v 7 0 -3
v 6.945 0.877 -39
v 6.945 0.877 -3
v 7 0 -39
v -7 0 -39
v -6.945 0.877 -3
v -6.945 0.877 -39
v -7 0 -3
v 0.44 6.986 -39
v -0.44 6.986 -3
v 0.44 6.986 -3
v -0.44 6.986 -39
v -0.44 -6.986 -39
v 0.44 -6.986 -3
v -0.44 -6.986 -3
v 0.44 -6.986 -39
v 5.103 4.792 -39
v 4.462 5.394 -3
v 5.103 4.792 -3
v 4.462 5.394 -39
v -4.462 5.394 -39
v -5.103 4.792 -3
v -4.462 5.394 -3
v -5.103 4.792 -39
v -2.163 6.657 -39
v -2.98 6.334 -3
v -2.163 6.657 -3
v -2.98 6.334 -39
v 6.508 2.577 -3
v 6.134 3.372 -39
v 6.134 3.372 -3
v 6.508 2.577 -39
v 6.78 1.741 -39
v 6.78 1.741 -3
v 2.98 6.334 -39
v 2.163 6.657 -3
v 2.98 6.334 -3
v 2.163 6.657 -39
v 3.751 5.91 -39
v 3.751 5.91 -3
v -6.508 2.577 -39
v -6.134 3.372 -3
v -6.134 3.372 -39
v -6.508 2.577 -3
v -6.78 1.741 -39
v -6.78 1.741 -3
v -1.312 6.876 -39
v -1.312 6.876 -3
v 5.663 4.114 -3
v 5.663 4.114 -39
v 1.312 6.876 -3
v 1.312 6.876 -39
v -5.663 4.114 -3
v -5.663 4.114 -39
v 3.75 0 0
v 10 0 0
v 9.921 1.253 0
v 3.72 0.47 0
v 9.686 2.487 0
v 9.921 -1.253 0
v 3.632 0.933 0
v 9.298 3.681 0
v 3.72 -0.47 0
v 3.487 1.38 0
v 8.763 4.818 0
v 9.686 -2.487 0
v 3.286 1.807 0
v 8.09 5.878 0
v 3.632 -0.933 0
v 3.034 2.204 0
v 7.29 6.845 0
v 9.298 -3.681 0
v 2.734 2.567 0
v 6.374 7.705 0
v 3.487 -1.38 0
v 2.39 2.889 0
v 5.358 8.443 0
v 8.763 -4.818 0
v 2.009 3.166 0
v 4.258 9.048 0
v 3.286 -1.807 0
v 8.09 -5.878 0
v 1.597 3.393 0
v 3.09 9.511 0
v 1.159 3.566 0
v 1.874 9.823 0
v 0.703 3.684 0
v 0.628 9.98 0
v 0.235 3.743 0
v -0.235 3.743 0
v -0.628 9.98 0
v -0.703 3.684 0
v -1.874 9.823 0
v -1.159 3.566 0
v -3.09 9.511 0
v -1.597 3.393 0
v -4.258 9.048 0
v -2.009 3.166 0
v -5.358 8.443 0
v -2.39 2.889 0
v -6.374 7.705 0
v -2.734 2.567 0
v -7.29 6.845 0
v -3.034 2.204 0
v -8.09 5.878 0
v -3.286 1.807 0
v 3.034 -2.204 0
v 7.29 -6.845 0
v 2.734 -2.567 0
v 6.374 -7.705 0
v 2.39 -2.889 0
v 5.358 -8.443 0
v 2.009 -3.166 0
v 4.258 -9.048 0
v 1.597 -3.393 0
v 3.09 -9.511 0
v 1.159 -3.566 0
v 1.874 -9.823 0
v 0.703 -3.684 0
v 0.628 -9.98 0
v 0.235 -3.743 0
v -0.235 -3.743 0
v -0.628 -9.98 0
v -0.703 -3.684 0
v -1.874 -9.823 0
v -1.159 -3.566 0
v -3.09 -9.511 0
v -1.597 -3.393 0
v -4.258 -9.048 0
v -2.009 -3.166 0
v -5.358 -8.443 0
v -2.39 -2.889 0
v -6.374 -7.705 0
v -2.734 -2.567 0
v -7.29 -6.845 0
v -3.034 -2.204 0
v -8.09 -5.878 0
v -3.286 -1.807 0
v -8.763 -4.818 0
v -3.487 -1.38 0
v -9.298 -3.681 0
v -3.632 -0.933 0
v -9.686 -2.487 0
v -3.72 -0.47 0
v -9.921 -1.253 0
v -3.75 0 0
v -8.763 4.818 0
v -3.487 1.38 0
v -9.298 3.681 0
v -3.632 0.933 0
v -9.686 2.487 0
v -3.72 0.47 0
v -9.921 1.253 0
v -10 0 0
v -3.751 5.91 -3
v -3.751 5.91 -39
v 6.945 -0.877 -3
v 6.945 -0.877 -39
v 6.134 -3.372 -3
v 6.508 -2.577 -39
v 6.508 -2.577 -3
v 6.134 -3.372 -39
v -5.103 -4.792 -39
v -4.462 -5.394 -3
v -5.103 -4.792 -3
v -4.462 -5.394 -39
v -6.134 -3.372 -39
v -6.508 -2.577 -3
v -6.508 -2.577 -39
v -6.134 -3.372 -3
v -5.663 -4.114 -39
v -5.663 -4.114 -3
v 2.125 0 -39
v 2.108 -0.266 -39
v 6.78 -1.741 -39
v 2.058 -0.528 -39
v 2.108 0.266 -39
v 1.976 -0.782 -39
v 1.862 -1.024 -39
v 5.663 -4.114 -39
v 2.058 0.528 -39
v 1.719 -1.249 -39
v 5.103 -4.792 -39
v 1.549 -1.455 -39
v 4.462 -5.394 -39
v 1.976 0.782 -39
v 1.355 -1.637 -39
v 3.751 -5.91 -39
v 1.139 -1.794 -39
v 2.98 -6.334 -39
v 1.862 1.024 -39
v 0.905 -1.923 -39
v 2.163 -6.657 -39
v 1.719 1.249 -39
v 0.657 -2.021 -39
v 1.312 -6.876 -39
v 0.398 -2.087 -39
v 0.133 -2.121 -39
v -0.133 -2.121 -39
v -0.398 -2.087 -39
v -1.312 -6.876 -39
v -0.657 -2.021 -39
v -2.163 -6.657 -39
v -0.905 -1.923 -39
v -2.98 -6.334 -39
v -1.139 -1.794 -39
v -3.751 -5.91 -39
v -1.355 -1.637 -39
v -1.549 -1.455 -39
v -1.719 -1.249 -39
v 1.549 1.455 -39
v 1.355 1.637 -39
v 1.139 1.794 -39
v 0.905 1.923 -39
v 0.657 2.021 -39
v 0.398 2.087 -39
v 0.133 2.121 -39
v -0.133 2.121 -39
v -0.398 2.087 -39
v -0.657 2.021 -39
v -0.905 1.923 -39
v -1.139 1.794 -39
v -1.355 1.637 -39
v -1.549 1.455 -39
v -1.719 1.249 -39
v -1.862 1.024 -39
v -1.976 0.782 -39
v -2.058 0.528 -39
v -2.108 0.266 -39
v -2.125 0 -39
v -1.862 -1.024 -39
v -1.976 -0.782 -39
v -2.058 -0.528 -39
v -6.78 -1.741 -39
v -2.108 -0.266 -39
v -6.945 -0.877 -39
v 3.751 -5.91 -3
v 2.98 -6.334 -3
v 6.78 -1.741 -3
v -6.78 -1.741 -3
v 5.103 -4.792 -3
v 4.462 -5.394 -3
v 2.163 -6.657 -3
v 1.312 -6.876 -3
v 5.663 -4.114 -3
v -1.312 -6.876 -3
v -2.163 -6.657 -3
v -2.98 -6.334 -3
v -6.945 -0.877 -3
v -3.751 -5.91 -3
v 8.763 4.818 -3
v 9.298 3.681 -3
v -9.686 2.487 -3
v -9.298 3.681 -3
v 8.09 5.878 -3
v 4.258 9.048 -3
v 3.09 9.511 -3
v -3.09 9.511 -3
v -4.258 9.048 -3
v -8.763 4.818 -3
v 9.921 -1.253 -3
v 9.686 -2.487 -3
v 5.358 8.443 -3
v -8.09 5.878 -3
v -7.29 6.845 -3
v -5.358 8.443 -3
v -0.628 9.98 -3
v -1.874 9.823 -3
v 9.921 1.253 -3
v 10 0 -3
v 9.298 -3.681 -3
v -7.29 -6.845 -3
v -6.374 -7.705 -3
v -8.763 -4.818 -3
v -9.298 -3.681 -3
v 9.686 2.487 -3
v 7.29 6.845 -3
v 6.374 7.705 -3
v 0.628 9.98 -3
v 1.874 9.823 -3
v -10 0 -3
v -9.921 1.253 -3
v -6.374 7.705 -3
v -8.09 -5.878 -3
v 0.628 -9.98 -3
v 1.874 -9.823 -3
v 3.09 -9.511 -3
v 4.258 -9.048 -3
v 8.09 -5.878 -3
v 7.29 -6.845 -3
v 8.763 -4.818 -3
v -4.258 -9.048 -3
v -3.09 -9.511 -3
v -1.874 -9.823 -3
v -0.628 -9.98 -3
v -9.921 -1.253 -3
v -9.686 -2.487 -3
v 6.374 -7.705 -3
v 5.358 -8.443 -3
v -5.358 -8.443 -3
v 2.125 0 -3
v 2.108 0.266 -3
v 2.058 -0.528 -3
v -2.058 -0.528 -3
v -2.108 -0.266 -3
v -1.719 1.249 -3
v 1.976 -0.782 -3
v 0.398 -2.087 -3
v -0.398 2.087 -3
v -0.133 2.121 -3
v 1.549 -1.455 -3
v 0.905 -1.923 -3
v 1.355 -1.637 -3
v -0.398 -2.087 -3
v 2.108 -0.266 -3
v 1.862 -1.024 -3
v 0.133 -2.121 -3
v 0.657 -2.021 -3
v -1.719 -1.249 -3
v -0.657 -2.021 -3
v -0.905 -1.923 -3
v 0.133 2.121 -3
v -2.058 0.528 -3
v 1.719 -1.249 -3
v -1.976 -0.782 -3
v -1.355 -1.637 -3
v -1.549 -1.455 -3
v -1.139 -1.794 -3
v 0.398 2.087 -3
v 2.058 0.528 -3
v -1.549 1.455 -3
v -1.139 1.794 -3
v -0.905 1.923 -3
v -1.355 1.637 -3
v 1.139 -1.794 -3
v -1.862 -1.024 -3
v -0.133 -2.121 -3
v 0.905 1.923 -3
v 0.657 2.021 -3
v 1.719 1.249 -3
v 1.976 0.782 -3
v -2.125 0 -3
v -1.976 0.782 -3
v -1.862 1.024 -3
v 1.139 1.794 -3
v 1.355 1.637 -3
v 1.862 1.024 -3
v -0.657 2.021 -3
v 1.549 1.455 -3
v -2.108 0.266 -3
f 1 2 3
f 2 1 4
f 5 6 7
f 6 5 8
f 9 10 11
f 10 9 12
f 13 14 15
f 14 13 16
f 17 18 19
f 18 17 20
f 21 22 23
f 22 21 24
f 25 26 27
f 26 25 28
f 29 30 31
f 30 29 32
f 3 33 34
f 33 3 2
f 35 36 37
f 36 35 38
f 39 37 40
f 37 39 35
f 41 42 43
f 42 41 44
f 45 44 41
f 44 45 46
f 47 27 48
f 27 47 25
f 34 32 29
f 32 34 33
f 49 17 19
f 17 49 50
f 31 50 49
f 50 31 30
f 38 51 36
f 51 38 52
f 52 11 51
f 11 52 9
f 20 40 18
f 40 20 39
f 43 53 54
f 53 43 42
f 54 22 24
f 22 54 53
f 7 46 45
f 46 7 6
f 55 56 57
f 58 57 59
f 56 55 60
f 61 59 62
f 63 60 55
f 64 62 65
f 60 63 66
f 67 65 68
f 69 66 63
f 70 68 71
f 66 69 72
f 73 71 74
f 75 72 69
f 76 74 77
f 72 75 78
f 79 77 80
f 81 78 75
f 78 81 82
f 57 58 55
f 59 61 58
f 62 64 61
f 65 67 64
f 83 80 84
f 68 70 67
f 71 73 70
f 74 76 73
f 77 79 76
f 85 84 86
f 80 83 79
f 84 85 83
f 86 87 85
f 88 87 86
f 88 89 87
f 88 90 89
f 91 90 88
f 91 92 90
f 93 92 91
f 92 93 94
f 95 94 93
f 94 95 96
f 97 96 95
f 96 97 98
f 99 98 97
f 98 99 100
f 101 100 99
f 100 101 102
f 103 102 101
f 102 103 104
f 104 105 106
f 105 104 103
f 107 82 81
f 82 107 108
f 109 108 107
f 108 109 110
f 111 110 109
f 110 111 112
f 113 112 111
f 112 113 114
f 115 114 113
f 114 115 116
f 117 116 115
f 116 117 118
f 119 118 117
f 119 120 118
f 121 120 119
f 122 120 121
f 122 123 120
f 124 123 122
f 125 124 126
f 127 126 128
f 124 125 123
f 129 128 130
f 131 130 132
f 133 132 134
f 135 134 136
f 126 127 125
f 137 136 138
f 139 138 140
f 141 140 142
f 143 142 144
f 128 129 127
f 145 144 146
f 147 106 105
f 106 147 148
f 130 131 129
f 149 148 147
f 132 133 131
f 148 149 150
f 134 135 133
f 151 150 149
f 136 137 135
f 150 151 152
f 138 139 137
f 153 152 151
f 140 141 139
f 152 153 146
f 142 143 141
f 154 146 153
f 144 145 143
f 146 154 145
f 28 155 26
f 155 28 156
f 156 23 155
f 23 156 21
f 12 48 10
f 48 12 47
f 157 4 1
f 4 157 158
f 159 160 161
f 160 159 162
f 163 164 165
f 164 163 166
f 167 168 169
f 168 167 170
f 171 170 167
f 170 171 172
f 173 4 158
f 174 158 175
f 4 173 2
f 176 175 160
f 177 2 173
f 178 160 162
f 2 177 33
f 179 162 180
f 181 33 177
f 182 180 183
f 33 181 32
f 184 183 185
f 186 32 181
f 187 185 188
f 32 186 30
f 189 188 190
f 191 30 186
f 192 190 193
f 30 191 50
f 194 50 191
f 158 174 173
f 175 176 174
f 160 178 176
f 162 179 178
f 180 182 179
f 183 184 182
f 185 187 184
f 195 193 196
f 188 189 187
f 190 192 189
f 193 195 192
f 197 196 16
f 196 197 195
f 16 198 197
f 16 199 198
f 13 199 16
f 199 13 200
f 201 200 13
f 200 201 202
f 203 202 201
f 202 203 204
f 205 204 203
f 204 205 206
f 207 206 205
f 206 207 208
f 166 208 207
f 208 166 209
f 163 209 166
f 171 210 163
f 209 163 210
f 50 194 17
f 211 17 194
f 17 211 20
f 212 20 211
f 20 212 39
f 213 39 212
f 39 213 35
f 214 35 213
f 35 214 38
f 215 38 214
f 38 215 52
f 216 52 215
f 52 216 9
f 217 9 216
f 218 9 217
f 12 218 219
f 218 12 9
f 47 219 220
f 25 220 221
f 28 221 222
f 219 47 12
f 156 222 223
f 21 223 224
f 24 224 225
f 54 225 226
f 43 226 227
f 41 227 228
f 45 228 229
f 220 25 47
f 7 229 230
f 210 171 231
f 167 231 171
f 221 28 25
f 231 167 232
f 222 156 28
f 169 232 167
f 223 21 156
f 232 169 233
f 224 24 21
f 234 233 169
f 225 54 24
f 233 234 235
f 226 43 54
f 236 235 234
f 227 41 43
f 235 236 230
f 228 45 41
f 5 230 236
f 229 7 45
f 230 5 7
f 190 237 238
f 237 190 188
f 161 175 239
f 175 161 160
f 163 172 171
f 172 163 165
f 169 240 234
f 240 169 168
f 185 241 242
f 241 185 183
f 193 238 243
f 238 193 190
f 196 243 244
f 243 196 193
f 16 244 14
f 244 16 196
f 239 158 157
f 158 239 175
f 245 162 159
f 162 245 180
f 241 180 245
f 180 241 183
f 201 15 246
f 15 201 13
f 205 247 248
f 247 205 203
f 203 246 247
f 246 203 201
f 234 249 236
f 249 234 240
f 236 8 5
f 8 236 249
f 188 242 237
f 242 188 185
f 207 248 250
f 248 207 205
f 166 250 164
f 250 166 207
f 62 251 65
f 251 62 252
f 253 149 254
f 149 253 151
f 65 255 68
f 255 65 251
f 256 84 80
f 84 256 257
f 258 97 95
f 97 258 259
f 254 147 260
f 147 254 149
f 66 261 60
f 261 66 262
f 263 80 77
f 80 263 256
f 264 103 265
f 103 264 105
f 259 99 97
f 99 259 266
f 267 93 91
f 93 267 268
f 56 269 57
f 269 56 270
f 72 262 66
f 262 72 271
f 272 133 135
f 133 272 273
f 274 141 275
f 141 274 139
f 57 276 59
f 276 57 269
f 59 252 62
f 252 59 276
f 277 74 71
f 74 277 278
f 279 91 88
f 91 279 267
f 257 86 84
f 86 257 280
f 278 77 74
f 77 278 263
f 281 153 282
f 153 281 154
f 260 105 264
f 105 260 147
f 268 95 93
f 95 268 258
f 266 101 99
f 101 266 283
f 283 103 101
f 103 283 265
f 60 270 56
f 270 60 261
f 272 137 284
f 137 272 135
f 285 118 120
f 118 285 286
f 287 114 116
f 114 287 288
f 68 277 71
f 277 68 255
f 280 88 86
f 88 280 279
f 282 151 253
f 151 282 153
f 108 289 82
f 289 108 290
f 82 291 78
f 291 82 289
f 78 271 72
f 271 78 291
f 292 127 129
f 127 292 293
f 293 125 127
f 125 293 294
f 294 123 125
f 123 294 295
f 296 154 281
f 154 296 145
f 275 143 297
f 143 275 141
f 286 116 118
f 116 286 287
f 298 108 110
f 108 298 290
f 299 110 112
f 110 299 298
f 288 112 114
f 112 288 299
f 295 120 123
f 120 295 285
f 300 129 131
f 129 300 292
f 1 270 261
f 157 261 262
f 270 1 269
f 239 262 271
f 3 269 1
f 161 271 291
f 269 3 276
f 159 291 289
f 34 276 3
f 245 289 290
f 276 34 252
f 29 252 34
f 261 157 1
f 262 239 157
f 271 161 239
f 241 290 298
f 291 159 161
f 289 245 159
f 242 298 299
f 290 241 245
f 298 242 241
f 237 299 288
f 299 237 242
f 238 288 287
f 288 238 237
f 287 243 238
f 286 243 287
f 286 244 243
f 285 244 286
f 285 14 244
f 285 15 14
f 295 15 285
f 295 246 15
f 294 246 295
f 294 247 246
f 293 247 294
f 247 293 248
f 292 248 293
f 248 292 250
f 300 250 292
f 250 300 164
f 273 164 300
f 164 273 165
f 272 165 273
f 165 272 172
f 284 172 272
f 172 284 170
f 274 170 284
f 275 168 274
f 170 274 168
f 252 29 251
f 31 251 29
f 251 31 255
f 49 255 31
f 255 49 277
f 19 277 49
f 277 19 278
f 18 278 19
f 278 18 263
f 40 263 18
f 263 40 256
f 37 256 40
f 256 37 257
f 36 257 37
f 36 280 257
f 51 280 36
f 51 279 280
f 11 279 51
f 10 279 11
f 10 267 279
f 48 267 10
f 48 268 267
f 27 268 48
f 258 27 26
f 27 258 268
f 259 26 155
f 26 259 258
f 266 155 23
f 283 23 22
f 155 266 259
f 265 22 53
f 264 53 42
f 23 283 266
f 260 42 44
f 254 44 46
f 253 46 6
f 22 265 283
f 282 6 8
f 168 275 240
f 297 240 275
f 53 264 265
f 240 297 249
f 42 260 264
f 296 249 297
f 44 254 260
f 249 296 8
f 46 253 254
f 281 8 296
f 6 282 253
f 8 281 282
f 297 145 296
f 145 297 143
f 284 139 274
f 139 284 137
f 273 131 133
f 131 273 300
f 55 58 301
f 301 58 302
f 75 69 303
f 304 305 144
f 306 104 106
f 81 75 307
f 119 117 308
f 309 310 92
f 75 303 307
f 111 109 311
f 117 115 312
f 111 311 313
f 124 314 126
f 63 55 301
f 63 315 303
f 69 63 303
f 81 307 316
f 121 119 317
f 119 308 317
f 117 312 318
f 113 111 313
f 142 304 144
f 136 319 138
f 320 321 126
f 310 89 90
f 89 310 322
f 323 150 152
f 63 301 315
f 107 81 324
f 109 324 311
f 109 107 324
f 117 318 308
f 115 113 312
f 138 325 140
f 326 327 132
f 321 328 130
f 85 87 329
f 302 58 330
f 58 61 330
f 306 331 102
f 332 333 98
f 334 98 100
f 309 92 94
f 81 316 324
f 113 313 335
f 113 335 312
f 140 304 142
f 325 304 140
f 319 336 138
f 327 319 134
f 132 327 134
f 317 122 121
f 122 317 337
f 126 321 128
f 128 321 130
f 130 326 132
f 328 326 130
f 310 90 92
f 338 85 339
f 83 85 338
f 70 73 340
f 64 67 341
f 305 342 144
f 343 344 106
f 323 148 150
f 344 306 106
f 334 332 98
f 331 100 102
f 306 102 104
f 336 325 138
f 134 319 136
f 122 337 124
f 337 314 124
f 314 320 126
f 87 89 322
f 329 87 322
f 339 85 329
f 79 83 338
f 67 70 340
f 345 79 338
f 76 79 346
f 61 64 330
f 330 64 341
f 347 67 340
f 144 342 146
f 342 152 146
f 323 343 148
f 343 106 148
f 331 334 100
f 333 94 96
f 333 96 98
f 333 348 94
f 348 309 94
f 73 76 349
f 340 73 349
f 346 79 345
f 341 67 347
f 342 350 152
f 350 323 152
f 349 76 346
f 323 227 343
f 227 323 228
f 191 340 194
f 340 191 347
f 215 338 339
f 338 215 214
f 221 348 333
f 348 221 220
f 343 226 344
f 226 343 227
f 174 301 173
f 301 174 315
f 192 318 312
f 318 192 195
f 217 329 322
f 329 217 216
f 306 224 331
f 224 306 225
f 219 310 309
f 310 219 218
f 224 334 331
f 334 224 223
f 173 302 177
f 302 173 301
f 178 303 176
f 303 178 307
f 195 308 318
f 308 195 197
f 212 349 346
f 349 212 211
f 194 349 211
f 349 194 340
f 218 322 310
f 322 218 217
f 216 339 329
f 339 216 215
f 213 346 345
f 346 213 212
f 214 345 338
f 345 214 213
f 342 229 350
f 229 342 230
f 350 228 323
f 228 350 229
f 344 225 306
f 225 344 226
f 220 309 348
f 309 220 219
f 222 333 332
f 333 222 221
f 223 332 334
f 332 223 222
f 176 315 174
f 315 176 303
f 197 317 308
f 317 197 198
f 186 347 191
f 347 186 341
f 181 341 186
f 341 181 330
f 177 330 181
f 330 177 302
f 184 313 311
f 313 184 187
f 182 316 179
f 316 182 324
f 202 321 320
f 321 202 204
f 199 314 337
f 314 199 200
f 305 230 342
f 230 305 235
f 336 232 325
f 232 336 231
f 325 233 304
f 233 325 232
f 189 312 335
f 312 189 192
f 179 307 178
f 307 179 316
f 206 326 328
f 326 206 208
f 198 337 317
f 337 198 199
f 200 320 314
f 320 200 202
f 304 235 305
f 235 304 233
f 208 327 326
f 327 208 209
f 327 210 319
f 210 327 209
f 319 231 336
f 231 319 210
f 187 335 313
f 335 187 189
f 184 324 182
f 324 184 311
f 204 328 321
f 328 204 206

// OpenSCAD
$fn = 50;


difference() {
	union() {
		translate(v = [0, 0, -39.0000000000]) {
			cylinder(h = 39, r = 7.0000000000);
		}
		translate(v = [0, 0, -3.0000000000]) {
			cylinder(h = 3, r = 10.0000000000);
		}
	}
	union() {
		translate(v = [0, 0, 0]) {
			rotate(a = [0, 0, 0]) {
				difference() {
					union() {
						#translate(v = [0, 0, -39.0000000000]) {
							cylinder(h = 39, r = 2.0000000000);
						}
						#translate(v = [0, 0, -3]) {
							cylinder(h = 3, r = 7.0000000000, r1 = 2.1250000000, r2 = 3.7500000000);
						}
						#translate(v = [0, 0, -39.0000000000]) {
							cylinder(h = 39, r = 2.1250000000);
						}
						#translate(v = [0, 0, -39.0000000000]) {
							cylinder(h = 39, r = 2.0000000000);
						}
					}
					union();
				}
			}
		}
	}
}
